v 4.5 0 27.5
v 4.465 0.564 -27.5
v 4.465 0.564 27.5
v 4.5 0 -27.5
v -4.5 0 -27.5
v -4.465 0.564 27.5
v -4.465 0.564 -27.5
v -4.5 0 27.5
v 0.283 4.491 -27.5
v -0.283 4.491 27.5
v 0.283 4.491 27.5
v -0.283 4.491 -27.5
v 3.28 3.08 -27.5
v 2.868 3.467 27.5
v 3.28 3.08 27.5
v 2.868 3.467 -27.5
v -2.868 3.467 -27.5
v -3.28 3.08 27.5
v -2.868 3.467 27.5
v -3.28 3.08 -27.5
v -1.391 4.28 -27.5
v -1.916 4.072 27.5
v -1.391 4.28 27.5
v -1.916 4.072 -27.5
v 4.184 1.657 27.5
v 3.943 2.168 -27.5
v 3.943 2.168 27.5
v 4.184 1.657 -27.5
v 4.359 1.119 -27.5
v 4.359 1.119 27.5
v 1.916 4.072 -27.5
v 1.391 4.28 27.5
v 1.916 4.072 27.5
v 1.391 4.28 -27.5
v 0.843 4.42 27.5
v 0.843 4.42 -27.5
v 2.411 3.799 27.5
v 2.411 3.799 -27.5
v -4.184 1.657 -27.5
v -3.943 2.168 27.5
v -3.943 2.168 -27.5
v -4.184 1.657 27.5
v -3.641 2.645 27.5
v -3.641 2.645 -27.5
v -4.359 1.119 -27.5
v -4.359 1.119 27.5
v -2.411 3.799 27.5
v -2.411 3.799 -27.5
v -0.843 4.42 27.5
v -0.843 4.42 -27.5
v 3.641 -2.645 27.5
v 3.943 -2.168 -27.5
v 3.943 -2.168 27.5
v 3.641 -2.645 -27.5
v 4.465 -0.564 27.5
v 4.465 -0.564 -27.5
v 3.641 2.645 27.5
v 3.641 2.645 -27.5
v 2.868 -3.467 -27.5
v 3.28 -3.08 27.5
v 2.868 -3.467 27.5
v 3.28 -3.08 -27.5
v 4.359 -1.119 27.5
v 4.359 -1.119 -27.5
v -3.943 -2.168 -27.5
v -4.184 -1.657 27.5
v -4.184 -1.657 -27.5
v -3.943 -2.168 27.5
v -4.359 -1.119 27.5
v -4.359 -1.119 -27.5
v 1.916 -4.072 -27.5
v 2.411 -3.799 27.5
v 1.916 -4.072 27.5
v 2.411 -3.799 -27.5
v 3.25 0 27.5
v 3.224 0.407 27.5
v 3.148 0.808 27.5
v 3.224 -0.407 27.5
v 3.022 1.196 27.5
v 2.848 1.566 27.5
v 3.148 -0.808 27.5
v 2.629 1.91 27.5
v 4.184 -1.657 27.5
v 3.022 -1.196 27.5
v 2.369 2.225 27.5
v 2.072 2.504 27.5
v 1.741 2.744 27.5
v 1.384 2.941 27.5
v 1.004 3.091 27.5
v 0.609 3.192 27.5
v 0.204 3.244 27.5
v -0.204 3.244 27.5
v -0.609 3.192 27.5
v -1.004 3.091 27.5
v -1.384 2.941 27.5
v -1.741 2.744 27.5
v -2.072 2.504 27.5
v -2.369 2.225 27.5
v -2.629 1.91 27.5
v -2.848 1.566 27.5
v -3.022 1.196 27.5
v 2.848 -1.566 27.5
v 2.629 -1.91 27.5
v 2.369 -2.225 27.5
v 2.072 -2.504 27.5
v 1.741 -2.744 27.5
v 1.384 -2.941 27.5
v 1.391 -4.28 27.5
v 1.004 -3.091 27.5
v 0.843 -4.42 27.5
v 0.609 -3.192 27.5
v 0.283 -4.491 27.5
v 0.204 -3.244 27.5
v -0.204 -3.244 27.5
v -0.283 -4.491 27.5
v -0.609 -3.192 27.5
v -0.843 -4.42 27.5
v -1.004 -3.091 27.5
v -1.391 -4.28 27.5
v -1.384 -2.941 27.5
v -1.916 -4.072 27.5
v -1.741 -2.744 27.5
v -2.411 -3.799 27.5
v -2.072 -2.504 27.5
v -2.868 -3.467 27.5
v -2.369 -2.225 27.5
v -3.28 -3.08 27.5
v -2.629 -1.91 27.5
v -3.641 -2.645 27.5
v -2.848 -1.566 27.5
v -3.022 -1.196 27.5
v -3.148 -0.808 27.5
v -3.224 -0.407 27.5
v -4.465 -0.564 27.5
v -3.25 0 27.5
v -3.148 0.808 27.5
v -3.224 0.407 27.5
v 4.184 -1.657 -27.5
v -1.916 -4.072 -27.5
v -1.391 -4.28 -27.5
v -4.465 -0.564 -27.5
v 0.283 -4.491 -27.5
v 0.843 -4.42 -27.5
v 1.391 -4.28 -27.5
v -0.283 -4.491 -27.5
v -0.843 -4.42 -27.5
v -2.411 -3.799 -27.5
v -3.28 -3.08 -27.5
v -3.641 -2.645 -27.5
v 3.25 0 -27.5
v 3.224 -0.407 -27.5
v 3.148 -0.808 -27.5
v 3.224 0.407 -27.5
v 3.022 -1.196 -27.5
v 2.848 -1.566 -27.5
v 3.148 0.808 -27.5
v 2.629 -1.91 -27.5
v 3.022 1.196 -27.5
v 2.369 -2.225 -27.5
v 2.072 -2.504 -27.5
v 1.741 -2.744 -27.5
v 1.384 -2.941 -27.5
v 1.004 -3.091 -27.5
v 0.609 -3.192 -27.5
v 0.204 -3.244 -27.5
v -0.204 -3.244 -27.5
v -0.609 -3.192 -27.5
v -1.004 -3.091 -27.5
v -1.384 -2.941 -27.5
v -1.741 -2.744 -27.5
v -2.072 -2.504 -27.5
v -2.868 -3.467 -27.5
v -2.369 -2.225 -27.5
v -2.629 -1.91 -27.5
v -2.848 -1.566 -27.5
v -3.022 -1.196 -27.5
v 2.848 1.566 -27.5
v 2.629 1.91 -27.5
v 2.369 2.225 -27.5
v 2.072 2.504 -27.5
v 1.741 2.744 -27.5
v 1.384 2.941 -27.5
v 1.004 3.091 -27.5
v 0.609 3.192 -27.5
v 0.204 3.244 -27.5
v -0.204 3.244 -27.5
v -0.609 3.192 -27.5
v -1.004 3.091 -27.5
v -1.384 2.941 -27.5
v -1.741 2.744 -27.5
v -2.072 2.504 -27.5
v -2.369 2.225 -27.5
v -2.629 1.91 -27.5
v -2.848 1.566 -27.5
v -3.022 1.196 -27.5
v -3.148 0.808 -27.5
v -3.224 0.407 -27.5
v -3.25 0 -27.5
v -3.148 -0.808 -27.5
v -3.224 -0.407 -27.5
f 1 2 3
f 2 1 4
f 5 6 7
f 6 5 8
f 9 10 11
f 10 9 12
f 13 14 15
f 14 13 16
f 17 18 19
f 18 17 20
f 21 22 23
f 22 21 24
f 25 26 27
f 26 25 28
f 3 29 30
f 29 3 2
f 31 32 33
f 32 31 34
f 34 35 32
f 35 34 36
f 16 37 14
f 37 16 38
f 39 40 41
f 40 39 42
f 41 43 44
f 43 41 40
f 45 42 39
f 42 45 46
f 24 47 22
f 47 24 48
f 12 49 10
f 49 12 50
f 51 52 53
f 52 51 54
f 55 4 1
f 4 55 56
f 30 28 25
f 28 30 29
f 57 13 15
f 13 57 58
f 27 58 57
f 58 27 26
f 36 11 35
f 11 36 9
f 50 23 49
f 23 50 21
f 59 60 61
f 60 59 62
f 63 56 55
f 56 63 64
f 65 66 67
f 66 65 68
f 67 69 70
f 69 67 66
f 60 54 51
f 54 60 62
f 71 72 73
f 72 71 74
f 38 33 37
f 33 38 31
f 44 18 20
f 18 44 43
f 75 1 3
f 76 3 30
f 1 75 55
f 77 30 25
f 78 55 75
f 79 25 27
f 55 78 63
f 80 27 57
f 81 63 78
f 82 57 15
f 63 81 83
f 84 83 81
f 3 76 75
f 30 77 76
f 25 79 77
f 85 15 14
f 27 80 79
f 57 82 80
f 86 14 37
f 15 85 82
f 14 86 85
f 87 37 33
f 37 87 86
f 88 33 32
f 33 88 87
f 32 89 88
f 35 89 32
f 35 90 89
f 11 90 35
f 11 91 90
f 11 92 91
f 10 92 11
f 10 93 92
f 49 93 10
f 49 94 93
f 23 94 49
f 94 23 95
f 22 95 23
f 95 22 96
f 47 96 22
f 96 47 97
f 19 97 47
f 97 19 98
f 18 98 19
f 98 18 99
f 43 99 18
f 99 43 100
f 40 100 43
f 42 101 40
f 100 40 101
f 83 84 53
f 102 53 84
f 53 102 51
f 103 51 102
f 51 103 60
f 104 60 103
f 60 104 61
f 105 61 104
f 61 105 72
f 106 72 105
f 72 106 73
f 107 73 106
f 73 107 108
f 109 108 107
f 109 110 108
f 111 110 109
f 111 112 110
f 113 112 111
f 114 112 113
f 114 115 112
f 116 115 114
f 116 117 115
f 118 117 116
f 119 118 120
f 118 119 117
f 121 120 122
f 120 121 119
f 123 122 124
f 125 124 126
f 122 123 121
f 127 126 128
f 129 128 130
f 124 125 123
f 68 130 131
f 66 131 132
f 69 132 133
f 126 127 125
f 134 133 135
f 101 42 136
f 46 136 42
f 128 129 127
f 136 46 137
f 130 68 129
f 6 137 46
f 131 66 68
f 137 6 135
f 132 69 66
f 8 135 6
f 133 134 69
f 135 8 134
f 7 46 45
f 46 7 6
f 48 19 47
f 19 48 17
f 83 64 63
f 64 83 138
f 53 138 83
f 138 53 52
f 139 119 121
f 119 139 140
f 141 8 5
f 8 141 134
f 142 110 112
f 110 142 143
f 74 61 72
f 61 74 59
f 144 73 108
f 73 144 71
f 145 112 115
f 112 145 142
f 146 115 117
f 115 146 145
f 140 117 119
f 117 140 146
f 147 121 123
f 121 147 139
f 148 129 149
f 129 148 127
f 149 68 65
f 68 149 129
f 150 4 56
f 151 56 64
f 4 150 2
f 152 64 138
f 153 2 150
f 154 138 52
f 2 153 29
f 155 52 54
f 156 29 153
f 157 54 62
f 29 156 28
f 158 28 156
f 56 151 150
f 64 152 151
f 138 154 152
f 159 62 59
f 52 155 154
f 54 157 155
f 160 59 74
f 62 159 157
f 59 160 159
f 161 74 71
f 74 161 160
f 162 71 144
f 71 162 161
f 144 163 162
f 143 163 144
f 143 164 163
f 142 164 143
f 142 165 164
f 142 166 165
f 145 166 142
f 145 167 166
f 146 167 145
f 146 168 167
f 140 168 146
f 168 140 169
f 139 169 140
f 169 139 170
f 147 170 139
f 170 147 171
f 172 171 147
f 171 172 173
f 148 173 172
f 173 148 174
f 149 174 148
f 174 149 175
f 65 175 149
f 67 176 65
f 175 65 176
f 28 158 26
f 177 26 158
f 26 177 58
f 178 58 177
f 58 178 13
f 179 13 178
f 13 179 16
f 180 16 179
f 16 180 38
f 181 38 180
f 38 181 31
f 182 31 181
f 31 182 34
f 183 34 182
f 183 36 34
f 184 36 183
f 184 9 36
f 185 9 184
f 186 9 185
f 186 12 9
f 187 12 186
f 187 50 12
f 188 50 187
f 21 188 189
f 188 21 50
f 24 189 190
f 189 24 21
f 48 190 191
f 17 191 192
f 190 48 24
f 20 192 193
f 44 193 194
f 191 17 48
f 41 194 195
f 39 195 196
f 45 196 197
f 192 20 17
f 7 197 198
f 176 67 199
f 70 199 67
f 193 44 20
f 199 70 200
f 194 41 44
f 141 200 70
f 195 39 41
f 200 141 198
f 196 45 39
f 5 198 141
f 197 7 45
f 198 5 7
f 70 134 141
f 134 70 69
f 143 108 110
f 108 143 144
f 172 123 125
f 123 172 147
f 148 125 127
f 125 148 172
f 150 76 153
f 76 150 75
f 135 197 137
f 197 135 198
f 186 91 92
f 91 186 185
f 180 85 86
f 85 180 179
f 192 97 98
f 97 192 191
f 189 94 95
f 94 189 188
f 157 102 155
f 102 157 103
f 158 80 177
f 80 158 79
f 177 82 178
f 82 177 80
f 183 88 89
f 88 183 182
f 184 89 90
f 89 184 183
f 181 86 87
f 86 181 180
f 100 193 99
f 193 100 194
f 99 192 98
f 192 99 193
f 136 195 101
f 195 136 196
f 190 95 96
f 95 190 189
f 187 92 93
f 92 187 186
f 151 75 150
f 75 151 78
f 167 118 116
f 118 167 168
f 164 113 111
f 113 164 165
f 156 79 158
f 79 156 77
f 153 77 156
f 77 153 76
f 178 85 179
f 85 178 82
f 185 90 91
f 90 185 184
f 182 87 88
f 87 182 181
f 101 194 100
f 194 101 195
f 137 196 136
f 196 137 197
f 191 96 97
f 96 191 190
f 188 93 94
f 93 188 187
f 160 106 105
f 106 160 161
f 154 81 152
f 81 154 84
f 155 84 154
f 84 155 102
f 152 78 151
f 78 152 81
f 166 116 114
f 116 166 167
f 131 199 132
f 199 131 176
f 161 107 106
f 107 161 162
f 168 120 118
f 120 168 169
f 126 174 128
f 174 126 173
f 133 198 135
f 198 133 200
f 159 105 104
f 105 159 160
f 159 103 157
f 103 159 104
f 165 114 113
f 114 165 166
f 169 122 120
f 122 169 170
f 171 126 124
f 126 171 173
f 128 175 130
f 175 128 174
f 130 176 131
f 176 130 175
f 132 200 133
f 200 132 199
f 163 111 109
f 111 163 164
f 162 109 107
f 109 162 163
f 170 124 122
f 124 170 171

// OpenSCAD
$fn = 50;


difference() {
	union() {
		translate(v = [0, 0, -27.5000000000]) {
			cylinder(h = 55, r = 4.5000000000);
		}
	}
	union() {
		translate(v = [0, 0, -100.0000000000]) {
			cylinder(h = 200, r = 3.2500000000);
		}
	}
}
